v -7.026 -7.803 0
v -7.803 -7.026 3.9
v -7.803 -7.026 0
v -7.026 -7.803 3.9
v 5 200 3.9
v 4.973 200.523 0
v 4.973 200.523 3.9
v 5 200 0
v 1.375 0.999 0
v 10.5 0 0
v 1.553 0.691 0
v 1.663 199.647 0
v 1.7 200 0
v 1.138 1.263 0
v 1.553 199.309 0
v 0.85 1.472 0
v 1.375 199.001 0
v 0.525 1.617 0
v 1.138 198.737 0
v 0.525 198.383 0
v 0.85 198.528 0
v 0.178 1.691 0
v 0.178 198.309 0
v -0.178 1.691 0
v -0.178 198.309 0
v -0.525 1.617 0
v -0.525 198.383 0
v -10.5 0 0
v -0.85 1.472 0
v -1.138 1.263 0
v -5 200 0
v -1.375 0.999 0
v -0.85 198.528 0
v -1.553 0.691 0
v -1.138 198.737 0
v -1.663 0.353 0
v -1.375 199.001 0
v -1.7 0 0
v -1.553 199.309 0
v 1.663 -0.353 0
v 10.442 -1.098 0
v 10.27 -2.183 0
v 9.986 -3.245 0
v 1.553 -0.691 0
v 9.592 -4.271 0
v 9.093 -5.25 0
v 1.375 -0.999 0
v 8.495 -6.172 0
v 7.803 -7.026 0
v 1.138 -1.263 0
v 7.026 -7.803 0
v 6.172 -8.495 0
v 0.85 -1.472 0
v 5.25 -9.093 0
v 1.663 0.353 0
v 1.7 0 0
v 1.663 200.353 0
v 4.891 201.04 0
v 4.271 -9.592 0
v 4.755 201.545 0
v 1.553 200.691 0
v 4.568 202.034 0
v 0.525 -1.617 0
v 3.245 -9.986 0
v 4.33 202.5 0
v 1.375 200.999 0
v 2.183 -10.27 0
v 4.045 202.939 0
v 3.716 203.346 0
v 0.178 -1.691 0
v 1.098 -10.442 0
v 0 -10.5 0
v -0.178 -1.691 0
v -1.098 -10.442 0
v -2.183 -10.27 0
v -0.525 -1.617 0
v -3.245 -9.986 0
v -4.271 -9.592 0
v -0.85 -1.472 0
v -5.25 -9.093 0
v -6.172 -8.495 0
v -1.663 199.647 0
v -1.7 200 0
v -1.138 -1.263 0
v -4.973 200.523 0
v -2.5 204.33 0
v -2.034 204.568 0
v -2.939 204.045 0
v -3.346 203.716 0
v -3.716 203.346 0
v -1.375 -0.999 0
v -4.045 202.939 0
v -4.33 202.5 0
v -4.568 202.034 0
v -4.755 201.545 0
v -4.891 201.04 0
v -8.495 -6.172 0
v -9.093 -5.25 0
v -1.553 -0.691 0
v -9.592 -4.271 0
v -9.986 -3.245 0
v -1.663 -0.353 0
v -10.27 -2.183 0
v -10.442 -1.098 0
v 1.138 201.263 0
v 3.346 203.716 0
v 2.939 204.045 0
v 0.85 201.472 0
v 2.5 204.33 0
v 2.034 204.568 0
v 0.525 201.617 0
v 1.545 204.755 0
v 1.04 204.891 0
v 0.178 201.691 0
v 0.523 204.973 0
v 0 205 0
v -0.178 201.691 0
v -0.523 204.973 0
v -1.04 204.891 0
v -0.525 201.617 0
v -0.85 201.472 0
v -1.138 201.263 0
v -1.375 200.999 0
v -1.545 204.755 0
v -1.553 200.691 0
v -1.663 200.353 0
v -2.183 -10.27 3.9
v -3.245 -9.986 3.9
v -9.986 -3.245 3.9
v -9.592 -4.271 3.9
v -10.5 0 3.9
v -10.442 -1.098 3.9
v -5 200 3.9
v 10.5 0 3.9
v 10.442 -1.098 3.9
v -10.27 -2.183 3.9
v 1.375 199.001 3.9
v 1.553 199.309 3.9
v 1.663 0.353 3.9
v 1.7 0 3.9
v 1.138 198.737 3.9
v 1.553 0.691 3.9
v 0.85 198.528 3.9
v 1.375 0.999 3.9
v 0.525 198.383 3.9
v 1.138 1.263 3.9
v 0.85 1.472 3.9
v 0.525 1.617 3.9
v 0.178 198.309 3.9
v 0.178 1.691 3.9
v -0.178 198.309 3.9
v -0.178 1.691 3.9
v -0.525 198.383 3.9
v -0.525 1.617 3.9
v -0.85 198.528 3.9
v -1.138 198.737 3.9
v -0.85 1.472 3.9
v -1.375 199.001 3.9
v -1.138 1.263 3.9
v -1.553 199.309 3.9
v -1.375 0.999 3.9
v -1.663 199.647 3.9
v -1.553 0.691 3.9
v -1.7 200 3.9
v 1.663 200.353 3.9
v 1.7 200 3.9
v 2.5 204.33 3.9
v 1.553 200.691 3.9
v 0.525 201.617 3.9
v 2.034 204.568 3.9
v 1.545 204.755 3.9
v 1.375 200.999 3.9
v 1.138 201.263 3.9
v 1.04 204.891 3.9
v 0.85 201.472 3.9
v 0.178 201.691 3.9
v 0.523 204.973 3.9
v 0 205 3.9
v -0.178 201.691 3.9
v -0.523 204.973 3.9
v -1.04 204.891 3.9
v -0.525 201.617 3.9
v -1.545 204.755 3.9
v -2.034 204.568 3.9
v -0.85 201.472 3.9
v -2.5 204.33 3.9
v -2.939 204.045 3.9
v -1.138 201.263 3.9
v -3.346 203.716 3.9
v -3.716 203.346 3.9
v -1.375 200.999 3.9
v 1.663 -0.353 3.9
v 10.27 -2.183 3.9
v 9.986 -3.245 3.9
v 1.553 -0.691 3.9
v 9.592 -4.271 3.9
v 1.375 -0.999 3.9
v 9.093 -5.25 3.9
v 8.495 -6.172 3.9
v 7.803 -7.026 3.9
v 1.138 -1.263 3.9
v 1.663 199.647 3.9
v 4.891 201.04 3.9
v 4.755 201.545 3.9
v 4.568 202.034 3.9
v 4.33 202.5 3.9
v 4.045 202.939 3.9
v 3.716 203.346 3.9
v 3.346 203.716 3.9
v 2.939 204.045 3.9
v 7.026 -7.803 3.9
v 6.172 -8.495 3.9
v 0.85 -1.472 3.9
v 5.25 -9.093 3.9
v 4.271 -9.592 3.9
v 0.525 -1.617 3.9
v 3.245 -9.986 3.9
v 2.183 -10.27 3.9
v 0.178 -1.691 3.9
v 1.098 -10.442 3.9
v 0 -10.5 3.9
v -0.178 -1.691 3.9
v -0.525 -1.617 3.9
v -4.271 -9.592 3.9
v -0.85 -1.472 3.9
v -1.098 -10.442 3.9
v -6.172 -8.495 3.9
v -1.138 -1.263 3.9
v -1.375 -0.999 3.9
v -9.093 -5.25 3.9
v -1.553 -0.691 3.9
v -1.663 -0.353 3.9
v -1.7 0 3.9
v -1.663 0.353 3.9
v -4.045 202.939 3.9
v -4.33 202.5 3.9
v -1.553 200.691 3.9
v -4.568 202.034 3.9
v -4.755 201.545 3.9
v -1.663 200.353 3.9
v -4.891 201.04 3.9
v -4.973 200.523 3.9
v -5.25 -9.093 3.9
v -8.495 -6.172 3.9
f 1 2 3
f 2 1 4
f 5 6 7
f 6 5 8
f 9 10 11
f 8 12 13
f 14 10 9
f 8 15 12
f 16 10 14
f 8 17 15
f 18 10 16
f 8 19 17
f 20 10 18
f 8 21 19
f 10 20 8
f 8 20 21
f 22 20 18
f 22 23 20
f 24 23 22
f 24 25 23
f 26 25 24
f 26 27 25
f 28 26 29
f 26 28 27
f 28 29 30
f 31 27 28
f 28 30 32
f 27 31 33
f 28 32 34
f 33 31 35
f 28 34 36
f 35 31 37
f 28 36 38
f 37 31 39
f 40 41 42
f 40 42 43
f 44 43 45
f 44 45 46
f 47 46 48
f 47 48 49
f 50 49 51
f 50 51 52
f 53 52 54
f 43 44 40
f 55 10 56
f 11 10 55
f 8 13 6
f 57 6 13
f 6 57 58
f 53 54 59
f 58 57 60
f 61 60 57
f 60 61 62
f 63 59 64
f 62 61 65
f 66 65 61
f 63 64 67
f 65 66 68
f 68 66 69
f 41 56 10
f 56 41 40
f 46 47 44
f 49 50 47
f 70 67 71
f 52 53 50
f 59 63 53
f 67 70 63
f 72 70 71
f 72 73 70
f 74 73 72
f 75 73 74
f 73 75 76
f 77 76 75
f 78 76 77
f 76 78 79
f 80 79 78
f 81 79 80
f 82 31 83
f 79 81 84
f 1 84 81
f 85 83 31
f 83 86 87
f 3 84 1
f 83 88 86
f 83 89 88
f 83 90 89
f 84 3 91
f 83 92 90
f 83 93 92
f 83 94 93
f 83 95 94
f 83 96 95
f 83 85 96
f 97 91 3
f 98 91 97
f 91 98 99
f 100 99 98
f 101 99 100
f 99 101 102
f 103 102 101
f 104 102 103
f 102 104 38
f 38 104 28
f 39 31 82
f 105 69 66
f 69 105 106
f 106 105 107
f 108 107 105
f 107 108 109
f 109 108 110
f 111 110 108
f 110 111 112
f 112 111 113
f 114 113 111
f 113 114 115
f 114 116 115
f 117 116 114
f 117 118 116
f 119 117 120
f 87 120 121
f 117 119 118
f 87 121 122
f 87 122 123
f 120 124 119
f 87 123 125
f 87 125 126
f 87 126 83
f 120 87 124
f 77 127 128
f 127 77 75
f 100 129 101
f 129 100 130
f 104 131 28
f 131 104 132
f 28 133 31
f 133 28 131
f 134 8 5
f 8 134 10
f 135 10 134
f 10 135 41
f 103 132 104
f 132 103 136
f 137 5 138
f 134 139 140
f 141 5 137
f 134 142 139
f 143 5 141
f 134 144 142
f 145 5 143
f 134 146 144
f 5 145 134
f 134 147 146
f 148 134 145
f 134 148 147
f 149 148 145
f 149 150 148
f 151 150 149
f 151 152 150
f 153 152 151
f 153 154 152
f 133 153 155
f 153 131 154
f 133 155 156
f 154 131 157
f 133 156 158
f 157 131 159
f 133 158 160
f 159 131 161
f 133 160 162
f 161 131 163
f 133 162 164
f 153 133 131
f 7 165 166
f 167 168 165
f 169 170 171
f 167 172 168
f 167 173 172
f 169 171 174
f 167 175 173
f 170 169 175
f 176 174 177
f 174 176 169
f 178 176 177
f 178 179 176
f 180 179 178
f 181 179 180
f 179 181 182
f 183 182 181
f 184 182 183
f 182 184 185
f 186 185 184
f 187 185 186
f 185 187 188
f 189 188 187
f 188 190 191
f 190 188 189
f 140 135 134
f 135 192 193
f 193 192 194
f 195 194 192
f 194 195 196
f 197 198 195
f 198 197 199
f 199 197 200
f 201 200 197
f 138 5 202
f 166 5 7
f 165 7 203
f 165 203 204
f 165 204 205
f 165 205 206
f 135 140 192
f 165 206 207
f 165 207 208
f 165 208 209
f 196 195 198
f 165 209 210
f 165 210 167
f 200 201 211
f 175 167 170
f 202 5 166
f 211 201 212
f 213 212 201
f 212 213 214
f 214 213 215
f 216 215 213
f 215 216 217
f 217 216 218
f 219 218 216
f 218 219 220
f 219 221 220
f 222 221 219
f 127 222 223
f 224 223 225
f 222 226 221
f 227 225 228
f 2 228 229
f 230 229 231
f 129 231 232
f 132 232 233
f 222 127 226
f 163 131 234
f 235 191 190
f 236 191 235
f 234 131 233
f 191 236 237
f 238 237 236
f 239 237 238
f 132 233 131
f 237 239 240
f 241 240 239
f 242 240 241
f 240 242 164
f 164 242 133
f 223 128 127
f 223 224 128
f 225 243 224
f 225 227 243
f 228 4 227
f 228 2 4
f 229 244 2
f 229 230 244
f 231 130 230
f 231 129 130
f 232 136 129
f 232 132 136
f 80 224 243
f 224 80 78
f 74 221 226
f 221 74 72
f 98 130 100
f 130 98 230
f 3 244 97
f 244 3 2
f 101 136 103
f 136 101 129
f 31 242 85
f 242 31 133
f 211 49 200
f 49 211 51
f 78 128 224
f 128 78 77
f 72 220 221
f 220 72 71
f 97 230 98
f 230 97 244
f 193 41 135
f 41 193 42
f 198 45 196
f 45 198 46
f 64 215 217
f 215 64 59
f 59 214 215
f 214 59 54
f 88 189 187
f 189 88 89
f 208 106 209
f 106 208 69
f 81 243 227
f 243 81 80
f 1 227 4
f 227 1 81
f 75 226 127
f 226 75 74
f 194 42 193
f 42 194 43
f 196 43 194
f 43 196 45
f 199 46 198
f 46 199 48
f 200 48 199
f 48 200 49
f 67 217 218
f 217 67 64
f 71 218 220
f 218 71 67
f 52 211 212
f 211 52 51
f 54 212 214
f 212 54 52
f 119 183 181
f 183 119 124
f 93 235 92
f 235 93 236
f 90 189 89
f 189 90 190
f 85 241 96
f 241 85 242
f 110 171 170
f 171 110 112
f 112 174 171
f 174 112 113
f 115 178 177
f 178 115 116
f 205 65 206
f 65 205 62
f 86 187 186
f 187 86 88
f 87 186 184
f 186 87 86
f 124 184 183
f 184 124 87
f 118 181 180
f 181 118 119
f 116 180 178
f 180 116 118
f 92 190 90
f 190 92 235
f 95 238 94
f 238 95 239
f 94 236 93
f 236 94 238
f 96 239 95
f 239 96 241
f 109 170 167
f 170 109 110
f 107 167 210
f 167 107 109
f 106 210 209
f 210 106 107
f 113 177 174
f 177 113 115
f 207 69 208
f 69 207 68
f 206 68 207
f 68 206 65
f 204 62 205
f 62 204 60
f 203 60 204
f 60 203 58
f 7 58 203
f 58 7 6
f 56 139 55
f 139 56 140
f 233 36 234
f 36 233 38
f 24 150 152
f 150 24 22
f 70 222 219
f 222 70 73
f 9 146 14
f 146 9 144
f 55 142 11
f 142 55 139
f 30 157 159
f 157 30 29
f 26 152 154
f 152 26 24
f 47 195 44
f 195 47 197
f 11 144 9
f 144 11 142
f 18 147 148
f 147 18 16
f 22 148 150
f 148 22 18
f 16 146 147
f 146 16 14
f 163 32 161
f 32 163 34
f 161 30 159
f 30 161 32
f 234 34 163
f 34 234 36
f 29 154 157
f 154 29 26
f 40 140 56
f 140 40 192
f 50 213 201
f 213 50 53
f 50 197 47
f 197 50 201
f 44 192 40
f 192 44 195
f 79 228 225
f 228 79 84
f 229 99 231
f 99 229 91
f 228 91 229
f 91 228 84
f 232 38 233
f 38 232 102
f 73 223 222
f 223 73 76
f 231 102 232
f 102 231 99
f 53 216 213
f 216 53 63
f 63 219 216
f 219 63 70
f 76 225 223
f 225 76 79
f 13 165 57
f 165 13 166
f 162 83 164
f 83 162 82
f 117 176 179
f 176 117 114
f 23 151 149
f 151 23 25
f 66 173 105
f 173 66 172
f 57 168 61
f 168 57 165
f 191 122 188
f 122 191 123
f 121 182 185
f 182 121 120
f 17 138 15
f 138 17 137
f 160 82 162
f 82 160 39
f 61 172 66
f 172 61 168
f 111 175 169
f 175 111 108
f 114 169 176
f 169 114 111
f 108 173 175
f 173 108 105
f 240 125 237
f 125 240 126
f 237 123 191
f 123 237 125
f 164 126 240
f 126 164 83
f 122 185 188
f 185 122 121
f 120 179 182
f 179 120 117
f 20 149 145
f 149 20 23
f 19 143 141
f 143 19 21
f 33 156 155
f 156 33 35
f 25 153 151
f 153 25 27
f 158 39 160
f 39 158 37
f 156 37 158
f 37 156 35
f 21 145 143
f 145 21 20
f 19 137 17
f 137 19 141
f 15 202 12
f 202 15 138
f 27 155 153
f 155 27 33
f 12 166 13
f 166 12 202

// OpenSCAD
//general
$fn = 30;                  //convexity of general curved faces
thickness = 3.9;             //thickness of arm

//circular servo horn measurements
hornDiameter = 21;             //diameter of the circular horn

//arm specific stuff
armLength =  200;//155               //horn center to horn center distance for arm length
leverLength = 39.4;             //length of lever bit on end of arm

pivotDiameter = 10;            //diameter of pivoting end
freeTurning3mm = 3.4;          //diameter of hole for free turning motion

difference(){
   hull(){
      cylinder(d=hornDiameter,h=thickness, $fn = 60);
      translate([0,armLength,0])
      cylinder(d=pivotDiameter, h=thickness, $fn = 60);
   }
   cylinder(d=freeTurning3mm,h=thickness);
   translate([0,armLength,0])
   cylinder(d=freeTurning3mm,h=thickness);
}
